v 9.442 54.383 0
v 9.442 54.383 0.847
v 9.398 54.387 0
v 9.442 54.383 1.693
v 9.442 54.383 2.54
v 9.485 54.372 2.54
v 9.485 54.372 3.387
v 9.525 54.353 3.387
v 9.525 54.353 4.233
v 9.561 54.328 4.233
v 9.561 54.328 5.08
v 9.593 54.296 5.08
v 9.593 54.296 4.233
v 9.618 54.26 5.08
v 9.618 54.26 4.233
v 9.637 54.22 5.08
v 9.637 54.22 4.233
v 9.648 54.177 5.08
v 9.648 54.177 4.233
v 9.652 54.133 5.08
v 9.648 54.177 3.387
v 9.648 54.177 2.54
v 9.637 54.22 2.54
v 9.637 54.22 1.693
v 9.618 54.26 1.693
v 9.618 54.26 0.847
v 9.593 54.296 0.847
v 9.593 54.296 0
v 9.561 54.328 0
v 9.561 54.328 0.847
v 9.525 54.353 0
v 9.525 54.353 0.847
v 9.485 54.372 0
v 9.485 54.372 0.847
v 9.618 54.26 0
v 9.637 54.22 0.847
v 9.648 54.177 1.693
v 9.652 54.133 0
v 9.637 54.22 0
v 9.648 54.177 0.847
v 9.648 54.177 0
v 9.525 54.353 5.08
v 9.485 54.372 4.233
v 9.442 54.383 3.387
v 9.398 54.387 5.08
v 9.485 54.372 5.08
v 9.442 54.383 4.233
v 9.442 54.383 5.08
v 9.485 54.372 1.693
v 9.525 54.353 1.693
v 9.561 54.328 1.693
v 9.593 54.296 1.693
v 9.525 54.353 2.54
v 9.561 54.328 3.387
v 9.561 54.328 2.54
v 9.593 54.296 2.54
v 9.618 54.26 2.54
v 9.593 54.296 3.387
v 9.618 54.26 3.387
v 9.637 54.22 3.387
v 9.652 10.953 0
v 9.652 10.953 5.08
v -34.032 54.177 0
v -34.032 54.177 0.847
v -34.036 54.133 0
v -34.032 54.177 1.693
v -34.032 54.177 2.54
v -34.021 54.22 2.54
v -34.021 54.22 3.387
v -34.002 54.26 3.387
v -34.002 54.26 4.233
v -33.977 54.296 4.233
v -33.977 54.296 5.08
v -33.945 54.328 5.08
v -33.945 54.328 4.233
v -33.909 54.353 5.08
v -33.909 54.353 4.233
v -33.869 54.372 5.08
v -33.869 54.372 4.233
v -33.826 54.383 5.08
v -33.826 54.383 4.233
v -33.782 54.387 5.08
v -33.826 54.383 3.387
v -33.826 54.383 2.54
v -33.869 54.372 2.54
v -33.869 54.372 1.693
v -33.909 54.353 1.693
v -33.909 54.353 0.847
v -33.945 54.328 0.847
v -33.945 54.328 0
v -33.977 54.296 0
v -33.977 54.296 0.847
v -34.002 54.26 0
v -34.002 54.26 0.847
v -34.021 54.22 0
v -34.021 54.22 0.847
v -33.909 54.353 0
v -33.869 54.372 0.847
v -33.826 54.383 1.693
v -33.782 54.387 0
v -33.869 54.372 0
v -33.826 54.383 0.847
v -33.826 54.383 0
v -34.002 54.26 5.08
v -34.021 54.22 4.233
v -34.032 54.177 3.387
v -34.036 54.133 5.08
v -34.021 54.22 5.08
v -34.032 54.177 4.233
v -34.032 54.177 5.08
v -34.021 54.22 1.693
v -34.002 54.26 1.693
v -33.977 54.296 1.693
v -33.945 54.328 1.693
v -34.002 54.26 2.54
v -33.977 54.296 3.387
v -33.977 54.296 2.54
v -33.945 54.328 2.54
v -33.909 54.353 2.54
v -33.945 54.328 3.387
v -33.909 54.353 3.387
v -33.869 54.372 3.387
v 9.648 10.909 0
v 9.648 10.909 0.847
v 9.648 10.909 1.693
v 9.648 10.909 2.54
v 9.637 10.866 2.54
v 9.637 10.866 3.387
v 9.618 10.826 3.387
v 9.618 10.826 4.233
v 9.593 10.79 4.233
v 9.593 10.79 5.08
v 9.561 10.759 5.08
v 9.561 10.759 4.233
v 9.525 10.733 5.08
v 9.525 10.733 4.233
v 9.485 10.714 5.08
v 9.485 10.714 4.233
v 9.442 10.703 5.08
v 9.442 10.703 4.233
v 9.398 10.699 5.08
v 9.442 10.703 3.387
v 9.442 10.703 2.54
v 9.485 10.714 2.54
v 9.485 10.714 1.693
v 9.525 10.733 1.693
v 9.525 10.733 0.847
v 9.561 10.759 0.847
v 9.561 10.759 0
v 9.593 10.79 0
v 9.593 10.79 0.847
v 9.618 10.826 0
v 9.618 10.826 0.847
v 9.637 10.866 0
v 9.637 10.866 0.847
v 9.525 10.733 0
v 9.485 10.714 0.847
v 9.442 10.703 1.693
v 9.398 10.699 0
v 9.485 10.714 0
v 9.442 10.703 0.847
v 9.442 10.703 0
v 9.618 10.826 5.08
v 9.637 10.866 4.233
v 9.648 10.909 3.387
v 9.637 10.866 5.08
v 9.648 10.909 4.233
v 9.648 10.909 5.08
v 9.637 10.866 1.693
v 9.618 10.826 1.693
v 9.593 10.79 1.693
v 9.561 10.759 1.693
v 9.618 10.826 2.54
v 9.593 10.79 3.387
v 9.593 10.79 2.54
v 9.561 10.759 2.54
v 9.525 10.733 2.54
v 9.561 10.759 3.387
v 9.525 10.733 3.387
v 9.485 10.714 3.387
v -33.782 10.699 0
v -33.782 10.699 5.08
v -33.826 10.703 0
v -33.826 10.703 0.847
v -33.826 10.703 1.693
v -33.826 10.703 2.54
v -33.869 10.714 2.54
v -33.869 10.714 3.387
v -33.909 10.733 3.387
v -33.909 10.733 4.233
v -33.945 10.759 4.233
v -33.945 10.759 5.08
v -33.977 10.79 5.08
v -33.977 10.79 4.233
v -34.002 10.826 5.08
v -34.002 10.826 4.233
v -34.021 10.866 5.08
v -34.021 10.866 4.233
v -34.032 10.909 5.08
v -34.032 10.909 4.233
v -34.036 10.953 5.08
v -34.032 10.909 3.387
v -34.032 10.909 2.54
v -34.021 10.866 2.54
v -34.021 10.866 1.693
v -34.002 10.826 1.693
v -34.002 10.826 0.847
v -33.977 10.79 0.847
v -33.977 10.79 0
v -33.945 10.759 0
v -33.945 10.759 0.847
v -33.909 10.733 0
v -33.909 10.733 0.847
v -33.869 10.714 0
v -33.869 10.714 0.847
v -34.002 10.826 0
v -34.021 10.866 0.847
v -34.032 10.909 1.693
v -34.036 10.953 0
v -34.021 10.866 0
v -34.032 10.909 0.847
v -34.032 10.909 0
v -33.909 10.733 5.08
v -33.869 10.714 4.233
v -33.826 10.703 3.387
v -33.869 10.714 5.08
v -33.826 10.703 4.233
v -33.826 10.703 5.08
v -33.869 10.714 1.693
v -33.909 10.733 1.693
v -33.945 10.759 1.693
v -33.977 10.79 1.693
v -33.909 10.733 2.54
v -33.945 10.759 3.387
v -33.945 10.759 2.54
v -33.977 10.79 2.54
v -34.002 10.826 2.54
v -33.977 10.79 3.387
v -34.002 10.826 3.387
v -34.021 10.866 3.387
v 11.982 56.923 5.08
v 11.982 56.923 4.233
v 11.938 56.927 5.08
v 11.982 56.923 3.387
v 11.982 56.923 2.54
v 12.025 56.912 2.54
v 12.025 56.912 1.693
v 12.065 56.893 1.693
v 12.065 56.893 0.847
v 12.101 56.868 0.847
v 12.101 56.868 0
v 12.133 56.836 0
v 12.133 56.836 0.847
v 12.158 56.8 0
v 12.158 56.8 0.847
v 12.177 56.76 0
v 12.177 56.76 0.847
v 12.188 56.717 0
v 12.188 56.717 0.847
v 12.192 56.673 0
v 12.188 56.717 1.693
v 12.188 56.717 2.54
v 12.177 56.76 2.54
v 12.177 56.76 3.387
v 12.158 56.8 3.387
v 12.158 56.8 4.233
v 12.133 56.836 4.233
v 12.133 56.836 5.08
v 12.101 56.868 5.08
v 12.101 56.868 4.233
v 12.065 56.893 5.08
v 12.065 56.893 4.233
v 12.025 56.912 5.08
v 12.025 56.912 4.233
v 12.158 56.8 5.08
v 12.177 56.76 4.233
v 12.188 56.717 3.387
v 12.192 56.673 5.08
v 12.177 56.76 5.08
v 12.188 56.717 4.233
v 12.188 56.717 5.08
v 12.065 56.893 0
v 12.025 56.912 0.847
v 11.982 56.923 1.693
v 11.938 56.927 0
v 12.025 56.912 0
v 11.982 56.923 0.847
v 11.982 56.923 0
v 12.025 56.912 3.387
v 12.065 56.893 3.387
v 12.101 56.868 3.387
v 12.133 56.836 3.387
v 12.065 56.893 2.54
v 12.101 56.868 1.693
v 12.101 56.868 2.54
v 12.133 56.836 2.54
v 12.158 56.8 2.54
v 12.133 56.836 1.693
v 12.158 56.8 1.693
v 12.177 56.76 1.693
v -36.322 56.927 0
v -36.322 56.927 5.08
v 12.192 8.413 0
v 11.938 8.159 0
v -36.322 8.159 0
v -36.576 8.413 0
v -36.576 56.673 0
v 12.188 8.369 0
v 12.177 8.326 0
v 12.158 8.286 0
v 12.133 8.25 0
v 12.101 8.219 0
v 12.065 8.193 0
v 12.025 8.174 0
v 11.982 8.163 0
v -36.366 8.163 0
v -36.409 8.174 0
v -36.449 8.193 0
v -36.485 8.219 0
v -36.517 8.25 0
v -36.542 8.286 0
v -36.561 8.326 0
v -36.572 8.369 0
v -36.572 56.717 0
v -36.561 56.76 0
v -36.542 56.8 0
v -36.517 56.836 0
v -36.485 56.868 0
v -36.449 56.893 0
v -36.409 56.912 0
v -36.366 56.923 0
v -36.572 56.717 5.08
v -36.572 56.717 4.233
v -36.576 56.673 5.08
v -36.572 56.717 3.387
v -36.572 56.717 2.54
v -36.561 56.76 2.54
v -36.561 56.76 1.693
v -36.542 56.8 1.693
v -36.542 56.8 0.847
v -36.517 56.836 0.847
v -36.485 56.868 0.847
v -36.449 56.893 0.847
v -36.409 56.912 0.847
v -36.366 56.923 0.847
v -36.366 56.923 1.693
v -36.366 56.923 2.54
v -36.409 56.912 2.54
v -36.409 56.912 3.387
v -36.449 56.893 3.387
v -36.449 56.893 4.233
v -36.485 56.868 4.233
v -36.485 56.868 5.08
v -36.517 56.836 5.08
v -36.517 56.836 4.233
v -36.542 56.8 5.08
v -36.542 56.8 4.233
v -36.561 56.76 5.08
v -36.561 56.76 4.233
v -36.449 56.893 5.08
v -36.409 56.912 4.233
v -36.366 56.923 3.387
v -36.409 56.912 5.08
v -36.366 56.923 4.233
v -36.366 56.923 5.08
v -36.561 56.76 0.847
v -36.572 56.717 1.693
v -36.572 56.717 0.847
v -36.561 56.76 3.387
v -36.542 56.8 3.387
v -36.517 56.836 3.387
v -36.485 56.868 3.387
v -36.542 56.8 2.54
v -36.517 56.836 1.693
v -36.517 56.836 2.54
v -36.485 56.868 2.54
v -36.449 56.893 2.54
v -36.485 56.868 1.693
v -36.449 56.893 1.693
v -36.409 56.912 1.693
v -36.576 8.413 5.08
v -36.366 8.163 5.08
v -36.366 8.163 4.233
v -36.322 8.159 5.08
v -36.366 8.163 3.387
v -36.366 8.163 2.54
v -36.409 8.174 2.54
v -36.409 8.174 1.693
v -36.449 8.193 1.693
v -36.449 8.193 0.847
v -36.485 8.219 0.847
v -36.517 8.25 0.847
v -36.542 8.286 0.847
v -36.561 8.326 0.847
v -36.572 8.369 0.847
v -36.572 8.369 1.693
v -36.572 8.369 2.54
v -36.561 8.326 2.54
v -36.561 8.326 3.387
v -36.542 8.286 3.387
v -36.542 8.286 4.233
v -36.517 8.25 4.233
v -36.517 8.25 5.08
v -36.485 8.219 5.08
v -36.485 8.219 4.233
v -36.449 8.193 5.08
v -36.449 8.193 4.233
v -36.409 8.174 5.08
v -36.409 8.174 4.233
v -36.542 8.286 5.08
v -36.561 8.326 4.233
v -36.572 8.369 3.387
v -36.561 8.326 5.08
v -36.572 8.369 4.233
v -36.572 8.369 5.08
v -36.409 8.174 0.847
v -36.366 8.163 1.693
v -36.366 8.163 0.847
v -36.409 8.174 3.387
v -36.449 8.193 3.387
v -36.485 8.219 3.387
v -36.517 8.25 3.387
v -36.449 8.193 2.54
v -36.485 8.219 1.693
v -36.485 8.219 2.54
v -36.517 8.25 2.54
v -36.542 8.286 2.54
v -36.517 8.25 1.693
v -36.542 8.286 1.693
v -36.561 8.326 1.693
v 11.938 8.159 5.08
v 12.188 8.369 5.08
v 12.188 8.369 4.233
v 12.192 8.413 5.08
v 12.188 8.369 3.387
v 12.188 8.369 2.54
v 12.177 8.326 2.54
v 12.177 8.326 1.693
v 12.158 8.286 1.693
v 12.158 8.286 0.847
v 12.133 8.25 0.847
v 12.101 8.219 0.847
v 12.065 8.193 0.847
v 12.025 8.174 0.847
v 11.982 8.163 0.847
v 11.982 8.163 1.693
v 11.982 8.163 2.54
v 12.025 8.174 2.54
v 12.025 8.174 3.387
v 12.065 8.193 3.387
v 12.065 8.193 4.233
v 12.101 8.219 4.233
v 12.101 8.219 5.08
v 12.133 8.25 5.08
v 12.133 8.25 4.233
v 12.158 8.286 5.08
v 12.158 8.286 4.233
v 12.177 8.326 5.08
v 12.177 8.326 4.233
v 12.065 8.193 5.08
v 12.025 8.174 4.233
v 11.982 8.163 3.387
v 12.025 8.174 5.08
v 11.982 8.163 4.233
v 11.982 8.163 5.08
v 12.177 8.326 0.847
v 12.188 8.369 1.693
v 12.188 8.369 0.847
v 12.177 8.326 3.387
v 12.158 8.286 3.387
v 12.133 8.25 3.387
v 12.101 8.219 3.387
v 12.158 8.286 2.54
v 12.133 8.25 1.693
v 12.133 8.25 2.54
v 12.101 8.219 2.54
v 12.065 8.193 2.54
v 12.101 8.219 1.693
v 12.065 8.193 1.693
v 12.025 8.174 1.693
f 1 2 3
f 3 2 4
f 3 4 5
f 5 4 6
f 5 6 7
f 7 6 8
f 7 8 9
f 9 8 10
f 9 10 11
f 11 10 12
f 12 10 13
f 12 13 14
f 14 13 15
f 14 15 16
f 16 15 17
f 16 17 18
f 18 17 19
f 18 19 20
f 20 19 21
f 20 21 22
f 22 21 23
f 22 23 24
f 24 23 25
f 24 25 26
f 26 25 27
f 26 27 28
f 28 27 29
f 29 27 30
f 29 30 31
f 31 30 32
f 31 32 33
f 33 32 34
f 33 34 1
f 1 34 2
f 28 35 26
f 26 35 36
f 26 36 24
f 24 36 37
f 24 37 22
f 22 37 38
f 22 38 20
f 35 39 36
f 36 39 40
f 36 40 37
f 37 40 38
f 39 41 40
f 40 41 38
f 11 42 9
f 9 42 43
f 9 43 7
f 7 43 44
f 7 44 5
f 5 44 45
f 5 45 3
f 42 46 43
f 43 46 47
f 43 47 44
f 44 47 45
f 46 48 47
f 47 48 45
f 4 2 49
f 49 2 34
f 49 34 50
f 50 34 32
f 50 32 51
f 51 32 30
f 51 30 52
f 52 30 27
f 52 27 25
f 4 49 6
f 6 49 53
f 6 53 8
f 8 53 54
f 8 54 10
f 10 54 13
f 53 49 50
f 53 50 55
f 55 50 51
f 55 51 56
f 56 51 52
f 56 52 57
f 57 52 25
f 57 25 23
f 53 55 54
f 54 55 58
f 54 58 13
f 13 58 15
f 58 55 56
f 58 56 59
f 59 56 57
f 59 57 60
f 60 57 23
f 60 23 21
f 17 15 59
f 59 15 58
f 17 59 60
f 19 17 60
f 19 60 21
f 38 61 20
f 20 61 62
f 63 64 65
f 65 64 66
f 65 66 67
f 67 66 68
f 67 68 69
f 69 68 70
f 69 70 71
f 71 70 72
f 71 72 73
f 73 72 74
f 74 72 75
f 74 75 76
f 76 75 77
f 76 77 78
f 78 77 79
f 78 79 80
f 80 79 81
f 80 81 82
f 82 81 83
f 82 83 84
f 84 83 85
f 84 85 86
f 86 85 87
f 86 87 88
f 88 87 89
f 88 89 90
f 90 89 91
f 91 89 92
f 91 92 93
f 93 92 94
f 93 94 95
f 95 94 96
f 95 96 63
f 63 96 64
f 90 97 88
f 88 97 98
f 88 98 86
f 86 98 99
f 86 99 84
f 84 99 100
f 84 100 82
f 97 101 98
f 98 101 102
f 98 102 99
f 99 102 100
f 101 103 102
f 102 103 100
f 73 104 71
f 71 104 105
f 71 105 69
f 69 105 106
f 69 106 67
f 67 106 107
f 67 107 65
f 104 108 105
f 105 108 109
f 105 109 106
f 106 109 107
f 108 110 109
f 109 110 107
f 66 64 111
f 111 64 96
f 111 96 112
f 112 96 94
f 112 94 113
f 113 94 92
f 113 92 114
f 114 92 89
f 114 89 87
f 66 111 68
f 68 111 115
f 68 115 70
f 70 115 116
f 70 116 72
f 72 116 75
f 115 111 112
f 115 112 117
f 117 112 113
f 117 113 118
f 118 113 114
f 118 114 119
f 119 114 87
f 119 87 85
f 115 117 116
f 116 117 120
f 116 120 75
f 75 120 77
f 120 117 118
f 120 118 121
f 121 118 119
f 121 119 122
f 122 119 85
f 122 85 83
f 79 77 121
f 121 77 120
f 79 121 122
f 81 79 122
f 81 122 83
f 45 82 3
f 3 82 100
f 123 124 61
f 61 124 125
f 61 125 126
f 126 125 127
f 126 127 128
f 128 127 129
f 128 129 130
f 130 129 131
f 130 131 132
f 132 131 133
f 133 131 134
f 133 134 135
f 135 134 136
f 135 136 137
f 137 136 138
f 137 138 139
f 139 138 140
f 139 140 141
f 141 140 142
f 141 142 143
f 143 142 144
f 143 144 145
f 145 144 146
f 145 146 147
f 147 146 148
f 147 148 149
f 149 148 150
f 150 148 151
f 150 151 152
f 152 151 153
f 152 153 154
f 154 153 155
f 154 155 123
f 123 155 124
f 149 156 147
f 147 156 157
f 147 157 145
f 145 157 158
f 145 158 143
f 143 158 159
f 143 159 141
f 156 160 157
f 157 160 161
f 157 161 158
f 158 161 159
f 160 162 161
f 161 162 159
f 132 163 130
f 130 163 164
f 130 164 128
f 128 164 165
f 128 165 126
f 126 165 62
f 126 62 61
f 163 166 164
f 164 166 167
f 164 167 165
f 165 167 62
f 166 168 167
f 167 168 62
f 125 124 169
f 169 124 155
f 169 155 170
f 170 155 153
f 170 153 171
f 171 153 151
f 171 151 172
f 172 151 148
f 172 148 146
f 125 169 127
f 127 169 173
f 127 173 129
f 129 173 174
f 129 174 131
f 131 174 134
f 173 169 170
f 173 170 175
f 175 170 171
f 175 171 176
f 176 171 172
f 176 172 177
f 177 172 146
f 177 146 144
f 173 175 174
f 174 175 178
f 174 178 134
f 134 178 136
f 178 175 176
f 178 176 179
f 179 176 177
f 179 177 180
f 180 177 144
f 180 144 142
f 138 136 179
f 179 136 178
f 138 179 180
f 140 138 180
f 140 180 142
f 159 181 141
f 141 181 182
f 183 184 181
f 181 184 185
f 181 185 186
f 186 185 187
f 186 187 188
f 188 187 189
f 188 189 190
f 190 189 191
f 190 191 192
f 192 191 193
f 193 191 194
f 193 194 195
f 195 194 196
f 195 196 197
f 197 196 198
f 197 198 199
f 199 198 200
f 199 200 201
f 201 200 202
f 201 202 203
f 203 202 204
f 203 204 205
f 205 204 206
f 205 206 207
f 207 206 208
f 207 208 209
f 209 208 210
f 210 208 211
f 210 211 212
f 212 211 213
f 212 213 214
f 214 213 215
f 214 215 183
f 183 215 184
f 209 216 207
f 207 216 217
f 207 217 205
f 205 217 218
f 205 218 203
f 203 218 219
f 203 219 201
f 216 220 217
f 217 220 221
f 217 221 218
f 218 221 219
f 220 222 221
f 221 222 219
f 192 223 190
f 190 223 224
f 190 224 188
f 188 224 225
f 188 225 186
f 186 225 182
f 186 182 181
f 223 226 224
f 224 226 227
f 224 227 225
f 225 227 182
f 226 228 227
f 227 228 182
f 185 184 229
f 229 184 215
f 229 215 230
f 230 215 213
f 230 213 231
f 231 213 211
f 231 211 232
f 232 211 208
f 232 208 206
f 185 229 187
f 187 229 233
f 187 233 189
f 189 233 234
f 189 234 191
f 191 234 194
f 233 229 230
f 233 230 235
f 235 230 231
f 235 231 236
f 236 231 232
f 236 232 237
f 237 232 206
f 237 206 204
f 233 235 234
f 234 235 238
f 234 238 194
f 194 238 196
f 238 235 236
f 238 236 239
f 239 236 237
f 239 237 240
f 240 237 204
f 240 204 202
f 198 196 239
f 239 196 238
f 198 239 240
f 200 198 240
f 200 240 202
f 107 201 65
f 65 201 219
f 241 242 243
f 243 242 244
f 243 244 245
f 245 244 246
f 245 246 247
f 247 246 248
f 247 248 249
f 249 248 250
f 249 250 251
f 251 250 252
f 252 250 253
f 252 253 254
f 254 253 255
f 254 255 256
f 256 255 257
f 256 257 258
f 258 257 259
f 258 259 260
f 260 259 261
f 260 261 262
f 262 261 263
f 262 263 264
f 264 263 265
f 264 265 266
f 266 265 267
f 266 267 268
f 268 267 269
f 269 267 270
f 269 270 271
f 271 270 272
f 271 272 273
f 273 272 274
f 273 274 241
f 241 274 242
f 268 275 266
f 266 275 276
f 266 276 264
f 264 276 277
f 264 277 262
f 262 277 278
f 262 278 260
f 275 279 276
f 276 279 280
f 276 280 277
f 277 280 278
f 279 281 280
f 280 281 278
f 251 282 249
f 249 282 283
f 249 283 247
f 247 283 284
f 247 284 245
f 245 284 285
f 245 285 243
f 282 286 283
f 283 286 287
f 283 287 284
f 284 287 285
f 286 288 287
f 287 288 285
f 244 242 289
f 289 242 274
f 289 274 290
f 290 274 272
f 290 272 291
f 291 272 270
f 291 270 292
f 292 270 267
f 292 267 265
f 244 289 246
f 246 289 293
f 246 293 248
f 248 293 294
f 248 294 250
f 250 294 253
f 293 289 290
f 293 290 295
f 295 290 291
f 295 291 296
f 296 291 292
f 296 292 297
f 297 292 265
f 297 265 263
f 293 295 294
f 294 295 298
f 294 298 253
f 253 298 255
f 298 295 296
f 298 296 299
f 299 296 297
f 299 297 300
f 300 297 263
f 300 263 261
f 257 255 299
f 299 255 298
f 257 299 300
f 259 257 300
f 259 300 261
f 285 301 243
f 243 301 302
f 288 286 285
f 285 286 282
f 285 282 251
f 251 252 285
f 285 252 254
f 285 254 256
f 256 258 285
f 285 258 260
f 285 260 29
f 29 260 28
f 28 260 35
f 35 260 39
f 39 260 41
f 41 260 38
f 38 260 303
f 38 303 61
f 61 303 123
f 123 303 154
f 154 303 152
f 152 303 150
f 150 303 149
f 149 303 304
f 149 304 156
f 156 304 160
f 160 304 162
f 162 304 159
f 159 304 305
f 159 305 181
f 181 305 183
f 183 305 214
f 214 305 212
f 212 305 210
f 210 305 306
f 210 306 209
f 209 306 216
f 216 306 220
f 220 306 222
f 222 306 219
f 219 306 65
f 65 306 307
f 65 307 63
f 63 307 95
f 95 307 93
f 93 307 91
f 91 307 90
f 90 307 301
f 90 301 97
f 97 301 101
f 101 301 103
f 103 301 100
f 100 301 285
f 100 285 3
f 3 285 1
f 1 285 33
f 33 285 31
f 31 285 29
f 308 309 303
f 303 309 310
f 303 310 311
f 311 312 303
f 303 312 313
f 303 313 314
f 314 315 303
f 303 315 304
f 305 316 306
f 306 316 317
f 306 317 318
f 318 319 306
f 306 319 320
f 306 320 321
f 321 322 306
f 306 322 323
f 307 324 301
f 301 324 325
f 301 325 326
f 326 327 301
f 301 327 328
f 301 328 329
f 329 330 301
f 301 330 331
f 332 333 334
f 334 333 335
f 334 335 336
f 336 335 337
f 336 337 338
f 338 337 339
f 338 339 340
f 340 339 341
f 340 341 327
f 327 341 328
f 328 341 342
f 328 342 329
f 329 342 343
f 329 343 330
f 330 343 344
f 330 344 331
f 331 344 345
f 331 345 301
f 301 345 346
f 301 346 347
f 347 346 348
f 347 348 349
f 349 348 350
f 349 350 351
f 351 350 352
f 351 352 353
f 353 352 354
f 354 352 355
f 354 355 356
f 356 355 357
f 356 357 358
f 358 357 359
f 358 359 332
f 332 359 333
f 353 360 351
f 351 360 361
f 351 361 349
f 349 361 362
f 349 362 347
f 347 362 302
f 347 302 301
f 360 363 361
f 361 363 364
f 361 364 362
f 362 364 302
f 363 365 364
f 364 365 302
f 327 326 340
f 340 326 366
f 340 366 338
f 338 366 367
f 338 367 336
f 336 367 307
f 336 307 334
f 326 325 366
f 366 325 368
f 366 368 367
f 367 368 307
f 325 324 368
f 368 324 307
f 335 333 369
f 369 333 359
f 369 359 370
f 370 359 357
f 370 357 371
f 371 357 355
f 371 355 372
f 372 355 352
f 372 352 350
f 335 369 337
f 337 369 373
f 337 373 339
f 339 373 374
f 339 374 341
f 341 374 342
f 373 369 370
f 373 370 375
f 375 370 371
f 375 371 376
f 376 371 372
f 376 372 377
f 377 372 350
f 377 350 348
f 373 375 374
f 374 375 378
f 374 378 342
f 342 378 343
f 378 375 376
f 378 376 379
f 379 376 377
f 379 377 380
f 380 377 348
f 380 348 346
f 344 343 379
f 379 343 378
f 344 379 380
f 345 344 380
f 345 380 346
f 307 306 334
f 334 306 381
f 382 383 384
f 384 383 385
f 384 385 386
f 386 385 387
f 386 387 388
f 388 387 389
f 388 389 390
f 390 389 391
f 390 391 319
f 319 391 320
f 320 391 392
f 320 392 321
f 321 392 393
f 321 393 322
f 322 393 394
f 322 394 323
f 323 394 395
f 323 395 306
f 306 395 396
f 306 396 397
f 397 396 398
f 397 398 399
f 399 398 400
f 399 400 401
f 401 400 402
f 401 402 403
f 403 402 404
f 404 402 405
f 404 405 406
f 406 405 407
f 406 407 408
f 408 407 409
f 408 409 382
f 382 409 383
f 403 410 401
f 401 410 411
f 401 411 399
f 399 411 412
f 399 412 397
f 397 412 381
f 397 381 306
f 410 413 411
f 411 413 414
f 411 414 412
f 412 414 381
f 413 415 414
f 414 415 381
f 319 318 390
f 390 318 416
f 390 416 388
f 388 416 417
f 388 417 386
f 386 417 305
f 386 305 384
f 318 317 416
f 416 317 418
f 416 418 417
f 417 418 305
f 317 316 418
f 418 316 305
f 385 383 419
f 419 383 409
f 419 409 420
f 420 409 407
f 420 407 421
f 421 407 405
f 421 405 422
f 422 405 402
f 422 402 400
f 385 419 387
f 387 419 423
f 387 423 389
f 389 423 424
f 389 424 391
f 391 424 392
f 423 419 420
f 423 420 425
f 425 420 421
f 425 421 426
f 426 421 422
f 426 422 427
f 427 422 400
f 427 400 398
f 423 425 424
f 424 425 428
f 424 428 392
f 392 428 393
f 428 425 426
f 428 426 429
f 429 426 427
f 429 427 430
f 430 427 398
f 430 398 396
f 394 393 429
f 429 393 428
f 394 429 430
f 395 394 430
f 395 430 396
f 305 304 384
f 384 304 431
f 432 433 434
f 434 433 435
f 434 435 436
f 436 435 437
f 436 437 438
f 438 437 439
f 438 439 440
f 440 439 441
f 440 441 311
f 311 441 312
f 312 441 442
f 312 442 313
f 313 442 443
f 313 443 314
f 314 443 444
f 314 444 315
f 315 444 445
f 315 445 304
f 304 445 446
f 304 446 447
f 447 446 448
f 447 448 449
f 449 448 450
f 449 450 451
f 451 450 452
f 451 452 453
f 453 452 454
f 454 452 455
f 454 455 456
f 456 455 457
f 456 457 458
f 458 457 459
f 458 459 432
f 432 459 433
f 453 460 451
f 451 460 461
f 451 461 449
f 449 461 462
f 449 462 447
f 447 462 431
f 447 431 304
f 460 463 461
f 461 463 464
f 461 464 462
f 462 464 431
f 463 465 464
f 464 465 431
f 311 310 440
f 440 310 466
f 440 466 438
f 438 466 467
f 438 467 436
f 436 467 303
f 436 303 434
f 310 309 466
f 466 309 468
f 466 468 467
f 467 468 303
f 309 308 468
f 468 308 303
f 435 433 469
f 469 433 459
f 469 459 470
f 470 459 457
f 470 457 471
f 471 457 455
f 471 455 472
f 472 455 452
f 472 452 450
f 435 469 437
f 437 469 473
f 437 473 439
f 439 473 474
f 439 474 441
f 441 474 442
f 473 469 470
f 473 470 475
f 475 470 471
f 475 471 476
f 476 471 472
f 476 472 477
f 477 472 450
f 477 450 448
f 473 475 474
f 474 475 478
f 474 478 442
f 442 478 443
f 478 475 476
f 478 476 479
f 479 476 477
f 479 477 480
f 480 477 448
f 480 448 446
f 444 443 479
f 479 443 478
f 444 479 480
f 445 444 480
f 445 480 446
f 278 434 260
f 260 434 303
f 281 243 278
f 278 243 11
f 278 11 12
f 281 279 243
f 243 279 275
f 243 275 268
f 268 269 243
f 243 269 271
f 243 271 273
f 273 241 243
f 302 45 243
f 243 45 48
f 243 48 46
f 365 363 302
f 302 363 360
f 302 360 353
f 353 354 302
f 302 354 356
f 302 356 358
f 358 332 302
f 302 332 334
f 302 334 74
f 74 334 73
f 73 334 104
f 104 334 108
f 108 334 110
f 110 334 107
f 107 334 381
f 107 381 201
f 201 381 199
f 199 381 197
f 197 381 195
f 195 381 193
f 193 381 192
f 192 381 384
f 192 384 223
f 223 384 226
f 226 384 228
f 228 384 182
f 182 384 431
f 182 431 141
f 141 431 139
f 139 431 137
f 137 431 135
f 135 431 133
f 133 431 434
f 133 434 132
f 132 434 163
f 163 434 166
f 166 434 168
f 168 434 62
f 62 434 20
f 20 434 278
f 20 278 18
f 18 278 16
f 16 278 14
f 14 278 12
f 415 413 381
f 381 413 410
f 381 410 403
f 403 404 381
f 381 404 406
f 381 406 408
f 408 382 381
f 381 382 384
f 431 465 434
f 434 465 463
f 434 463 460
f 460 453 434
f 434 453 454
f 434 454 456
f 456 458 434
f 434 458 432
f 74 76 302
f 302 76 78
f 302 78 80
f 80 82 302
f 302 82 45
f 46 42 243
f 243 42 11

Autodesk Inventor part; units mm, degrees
ref_plane "YZ Plane" through (0, 0, 0) normal (1, 0, 0) x (0, 1, 0)
ref_plane "XZ Plane" through (0, 0, 0) normal (0, 1, 0) x (-1, 0, 0)
ref_plane "XY Plane" through (0, 0, 0) normal (0, 0, 1) x (1, 0, 0)
sketch "Sketch1" plane through (0, 0, 0) normal (0, 0, 1) x (1, 0, 0)
  line L0 (-36.576, 56.9271) -> (-36.576, 8.1591) projected
  line L1 (-36.576, 8.1591) -> (12.192, 8.1591) projected
  line L2 (12.192, 8.1591) -> (12.192, 56.9271) projected
  line L3 (12.192, 56.9271) -> (-36.576, 56.9271) projected
  line L4 (9.652, 10.6991) -> (-34.036, 10.6991)
  line L5 (-34.036, 10.6991) -> (-34.036, 54.3871)
  line L6 (-34.036, 54.3871) -> (9.652, 54.3871)
  line L7 (9.652, 54.3871) -> (9.652, 10.6991)
  point P0 (0, 0)
  dimension "d0" = 2.54
extrude "Extrusion1" add sketch "Sketch1" along normal blind 5.08
fillet "Fillet1" radius 0.254 8 edges at (12.192, 8.1591, 2.54) (-36.576, 8.1591, 2.54) (-36.576, 56.9271, 2.54) (12.192, 56.9271, 2.54) (-34.036, 10.6991, 2.54) (9.652, 10.6991, 2.54) (-34.036, 54.3871, 2.54) (9.652, 54.3871, 2.54)
properties part number "infTrim" material "ABS Plastic"
